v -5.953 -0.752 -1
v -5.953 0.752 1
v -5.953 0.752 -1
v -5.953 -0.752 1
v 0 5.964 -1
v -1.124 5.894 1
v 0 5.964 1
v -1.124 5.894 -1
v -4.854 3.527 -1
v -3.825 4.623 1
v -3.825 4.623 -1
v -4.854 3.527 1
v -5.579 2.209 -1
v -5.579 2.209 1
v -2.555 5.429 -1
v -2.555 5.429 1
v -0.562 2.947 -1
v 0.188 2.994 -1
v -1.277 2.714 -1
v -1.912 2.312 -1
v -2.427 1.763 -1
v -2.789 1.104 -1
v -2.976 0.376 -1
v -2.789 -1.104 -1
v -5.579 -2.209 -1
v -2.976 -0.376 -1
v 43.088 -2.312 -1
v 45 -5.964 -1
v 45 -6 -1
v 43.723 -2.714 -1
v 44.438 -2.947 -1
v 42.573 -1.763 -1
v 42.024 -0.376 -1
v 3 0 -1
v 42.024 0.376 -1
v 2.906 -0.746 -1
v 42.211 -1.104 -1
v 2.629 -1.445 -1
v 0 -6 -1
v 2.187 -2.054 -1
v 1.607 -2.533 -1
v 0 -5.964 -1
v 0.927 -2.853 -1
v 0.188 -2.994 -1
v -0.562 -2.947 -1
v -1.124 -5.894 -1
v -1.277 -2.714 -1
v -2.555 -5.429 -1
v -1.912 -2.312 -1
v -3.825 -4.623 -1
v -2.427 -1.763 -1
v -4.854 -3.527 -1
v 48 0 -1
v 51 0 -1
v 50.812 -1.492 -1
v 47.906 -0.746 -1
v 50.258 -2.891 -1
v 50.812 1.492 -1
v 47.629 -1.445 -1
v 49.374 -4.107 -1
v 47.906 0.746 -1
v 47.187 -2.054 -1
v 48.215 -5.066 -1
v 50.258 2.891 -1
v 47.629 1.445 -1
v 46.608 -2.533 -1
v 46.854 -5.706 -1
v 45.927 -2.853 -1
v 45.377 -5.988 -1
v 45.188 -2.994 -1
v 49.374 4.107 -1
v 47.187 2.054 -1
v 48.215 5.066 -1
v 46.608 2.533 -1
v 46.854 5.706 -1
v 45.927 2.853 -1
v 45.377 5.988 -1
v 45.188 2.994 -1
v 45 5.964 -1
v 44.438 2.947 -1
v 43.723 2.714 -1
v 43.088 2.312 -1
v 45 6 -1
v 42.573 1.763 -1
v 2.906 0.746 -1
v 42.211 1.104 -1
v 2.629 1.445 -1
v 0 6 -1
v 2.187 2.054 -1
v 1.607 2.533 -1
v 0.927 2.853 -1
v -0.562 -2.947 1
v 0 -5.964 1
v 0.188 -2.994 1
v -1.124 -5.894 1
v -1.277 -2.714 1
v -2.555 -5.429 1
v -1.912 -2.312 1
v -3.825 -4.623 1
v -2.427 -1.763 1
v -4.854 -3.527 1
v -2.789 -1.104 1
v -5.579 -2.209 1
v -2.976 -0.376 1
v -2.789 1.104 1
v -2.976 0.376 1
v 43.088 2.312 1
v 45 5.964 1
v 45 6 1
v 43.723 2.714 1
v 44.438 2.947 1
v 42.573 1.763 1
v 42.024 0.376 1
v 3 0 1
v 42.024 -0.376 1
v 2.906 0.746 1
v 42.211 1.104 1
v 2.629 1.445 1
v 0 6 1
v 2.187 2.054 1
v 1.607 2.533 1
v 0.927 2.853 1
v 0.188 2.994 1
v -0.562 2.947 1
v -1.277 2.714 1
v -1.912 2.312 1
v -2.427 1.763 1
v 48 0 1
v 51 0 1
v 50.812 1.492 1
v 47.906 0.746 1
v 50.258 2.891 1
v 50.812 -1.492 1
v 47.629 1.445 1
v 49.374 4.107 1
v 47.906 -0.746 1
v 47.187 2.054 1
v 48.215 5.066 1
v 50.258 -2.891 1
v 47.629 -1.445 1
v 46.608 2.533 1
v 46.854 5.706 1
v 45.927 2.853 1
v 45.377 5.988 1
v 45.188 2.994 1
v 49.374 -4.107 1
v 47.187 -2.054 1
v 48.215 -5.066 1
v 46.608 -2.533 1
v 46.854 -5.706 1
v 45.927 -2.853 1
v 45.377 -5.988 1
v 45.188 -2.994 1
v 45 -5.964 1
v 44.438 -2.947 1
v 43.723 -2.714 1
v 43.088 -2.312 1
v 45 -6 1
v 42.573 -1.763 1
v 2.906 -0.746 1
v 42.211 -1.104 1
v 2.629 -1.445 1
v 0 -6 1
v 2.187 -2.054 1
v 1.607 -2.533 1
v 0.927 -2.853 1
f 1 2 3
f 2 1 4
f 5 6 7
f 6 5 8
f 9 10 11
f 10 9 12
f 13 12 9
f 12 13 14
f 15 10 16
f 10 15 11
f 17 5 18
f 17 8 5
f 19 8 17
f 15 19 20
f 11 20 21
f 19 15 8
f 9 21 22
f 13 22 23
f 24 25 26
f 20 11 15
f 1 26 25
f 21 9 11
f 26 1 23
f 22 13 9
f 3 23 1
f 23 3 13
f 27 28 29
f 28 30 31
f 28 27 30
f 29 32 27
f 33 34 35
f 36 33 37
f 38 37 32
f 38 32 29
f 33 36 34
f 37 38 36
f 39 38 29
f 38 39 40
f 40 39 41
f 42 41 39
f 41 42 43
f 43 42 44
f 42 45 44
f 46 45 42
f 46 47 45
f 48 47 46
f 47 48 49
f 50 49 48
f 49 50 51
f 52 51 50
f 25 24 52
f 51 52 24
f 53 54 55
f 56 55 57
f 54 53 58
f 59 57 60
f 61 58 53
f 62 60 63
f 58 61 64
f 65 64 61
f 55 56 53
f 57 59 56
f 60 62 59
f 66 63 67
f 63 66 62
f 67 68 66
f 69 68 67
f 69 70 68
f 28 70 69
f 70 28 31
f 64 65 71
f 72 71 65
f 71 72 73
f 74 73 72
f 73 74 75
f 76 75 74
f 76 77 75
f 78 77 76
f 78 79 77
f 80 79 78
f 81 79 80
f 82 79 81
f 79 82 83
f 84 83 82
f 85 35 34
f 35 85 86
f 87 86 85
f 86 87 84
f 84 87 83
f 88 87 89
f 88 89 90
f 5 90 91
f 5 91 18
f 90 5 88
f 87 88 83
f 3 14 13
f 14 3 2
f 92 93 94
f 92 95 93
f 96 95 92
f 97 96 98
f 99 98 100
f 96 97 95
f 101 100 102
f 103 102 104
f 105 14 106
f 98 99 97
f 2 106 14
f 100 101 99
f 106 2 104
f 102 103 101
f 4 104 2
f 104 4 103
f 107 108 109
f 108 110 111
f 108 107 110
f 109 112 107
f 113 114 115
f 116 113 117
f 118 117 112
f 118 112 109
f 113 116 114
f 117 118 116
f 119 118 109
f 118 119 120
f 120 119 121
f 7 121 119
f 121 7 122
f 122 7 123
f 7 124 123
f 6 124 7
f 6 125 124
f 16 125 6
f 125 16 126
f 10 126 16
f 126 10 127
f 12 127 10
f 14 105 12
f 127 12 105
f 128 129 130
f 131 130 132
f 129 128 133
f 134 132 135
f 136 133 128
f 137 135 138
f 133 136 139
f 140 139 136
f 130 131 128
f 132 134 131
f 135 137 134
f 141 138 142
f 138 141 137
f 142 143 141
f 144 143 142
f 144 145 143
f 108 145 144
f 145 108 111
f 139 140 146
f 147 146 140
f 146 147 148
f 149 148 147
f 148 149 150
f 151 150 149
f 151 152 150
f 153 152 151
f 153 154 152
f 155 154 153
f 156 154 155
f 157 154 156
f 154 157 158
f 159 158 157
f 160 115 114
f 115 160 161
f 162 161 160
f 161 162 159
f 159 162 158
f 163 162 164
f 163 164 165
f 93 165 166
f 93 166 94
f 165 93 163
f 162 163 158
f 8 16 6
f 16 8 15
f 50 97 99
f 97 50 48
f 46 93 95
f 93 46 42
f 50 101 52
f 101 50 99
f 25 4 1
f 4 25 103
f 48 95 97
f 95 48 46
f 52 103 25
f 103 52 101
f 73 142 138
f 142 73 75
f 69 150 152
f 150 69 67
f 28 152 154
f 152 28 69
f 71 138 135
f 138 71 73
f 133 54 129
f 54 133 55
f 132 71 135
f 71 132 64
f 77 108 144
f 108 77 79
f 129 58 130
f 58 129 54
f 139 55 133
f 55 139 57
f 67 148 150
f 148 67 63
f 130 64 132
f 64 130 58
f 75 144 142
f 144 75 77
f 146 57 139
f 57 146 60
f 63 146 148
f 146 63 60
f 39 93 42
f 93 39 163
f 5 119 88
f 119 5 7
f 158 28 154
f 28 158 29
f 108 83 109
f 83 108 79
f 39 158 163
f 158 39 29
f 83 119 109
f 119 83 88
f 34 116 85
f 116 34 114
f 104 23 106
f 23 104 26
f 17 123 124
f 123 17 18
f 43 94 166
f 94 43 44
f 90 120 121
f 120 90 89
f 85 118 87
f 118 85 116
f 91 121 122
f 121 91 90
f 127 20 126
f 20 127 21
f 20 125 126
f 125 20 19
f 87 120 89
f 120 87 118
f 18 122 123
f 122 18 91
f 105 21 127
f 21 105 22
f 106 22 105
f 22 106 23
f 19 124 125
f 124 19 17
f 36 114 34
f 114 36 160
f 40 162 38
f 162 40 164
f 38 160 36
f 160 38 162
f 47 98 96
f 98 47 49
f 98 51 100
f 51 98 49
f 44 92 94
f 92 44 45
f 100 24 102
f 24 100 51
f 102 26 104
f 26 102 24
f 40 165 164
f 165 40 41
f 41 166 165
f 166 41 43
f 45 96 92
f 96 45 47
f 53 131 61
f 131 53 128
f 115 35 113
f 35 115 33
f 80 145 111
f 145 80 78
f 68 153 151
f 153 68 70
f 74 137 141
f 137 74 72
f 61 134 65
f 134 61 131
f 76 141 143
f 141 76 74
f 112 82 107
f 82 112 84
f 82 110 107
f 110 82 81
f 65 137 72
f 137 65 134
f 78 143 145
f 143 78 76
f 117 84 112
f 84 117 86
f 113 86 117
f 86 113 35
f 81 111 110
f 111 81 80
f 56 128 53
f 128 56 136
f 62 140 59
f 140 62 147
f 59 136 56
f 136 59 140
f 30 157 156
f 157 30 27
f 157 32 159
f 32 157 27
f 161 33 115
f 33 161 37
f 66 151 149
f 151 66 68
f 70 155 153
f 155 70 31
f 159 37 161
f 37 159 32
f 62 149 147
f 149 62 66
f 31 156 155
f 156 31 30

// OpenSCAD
ismale=true;

quality=25;

pin_radius=2.5;
pin_length=12;

hole_radius=3;
backing_thickness=2;
bit_distance=45;


//backing
difference()
{
    union()
    {
        translate([0,0,-backing_thickness/2]) union()
        {
            cylinder(r=hole_radius*2,h=backing_thickness,$fn=quality);
            translate([bit_distance,0,0]) cylinder(r=hole_radius*2,h=backing_thickness,$fn=quality);
            translate([0,-hole_radius*2,0]) cube([bit_distance,hole_radius*4,backing_thickness]);  
        }
        
    }
    union()
    {
        translate([0,0,-backing_thickness/2]) cylinder(r=hole_radius,h=backing_thickness,$fn=quality);
        translate([bit_distance,0,-backing_thickness/2]) cylinder(r=hole_radius,h=backing_thickness,$fn=quality);
    }
}
